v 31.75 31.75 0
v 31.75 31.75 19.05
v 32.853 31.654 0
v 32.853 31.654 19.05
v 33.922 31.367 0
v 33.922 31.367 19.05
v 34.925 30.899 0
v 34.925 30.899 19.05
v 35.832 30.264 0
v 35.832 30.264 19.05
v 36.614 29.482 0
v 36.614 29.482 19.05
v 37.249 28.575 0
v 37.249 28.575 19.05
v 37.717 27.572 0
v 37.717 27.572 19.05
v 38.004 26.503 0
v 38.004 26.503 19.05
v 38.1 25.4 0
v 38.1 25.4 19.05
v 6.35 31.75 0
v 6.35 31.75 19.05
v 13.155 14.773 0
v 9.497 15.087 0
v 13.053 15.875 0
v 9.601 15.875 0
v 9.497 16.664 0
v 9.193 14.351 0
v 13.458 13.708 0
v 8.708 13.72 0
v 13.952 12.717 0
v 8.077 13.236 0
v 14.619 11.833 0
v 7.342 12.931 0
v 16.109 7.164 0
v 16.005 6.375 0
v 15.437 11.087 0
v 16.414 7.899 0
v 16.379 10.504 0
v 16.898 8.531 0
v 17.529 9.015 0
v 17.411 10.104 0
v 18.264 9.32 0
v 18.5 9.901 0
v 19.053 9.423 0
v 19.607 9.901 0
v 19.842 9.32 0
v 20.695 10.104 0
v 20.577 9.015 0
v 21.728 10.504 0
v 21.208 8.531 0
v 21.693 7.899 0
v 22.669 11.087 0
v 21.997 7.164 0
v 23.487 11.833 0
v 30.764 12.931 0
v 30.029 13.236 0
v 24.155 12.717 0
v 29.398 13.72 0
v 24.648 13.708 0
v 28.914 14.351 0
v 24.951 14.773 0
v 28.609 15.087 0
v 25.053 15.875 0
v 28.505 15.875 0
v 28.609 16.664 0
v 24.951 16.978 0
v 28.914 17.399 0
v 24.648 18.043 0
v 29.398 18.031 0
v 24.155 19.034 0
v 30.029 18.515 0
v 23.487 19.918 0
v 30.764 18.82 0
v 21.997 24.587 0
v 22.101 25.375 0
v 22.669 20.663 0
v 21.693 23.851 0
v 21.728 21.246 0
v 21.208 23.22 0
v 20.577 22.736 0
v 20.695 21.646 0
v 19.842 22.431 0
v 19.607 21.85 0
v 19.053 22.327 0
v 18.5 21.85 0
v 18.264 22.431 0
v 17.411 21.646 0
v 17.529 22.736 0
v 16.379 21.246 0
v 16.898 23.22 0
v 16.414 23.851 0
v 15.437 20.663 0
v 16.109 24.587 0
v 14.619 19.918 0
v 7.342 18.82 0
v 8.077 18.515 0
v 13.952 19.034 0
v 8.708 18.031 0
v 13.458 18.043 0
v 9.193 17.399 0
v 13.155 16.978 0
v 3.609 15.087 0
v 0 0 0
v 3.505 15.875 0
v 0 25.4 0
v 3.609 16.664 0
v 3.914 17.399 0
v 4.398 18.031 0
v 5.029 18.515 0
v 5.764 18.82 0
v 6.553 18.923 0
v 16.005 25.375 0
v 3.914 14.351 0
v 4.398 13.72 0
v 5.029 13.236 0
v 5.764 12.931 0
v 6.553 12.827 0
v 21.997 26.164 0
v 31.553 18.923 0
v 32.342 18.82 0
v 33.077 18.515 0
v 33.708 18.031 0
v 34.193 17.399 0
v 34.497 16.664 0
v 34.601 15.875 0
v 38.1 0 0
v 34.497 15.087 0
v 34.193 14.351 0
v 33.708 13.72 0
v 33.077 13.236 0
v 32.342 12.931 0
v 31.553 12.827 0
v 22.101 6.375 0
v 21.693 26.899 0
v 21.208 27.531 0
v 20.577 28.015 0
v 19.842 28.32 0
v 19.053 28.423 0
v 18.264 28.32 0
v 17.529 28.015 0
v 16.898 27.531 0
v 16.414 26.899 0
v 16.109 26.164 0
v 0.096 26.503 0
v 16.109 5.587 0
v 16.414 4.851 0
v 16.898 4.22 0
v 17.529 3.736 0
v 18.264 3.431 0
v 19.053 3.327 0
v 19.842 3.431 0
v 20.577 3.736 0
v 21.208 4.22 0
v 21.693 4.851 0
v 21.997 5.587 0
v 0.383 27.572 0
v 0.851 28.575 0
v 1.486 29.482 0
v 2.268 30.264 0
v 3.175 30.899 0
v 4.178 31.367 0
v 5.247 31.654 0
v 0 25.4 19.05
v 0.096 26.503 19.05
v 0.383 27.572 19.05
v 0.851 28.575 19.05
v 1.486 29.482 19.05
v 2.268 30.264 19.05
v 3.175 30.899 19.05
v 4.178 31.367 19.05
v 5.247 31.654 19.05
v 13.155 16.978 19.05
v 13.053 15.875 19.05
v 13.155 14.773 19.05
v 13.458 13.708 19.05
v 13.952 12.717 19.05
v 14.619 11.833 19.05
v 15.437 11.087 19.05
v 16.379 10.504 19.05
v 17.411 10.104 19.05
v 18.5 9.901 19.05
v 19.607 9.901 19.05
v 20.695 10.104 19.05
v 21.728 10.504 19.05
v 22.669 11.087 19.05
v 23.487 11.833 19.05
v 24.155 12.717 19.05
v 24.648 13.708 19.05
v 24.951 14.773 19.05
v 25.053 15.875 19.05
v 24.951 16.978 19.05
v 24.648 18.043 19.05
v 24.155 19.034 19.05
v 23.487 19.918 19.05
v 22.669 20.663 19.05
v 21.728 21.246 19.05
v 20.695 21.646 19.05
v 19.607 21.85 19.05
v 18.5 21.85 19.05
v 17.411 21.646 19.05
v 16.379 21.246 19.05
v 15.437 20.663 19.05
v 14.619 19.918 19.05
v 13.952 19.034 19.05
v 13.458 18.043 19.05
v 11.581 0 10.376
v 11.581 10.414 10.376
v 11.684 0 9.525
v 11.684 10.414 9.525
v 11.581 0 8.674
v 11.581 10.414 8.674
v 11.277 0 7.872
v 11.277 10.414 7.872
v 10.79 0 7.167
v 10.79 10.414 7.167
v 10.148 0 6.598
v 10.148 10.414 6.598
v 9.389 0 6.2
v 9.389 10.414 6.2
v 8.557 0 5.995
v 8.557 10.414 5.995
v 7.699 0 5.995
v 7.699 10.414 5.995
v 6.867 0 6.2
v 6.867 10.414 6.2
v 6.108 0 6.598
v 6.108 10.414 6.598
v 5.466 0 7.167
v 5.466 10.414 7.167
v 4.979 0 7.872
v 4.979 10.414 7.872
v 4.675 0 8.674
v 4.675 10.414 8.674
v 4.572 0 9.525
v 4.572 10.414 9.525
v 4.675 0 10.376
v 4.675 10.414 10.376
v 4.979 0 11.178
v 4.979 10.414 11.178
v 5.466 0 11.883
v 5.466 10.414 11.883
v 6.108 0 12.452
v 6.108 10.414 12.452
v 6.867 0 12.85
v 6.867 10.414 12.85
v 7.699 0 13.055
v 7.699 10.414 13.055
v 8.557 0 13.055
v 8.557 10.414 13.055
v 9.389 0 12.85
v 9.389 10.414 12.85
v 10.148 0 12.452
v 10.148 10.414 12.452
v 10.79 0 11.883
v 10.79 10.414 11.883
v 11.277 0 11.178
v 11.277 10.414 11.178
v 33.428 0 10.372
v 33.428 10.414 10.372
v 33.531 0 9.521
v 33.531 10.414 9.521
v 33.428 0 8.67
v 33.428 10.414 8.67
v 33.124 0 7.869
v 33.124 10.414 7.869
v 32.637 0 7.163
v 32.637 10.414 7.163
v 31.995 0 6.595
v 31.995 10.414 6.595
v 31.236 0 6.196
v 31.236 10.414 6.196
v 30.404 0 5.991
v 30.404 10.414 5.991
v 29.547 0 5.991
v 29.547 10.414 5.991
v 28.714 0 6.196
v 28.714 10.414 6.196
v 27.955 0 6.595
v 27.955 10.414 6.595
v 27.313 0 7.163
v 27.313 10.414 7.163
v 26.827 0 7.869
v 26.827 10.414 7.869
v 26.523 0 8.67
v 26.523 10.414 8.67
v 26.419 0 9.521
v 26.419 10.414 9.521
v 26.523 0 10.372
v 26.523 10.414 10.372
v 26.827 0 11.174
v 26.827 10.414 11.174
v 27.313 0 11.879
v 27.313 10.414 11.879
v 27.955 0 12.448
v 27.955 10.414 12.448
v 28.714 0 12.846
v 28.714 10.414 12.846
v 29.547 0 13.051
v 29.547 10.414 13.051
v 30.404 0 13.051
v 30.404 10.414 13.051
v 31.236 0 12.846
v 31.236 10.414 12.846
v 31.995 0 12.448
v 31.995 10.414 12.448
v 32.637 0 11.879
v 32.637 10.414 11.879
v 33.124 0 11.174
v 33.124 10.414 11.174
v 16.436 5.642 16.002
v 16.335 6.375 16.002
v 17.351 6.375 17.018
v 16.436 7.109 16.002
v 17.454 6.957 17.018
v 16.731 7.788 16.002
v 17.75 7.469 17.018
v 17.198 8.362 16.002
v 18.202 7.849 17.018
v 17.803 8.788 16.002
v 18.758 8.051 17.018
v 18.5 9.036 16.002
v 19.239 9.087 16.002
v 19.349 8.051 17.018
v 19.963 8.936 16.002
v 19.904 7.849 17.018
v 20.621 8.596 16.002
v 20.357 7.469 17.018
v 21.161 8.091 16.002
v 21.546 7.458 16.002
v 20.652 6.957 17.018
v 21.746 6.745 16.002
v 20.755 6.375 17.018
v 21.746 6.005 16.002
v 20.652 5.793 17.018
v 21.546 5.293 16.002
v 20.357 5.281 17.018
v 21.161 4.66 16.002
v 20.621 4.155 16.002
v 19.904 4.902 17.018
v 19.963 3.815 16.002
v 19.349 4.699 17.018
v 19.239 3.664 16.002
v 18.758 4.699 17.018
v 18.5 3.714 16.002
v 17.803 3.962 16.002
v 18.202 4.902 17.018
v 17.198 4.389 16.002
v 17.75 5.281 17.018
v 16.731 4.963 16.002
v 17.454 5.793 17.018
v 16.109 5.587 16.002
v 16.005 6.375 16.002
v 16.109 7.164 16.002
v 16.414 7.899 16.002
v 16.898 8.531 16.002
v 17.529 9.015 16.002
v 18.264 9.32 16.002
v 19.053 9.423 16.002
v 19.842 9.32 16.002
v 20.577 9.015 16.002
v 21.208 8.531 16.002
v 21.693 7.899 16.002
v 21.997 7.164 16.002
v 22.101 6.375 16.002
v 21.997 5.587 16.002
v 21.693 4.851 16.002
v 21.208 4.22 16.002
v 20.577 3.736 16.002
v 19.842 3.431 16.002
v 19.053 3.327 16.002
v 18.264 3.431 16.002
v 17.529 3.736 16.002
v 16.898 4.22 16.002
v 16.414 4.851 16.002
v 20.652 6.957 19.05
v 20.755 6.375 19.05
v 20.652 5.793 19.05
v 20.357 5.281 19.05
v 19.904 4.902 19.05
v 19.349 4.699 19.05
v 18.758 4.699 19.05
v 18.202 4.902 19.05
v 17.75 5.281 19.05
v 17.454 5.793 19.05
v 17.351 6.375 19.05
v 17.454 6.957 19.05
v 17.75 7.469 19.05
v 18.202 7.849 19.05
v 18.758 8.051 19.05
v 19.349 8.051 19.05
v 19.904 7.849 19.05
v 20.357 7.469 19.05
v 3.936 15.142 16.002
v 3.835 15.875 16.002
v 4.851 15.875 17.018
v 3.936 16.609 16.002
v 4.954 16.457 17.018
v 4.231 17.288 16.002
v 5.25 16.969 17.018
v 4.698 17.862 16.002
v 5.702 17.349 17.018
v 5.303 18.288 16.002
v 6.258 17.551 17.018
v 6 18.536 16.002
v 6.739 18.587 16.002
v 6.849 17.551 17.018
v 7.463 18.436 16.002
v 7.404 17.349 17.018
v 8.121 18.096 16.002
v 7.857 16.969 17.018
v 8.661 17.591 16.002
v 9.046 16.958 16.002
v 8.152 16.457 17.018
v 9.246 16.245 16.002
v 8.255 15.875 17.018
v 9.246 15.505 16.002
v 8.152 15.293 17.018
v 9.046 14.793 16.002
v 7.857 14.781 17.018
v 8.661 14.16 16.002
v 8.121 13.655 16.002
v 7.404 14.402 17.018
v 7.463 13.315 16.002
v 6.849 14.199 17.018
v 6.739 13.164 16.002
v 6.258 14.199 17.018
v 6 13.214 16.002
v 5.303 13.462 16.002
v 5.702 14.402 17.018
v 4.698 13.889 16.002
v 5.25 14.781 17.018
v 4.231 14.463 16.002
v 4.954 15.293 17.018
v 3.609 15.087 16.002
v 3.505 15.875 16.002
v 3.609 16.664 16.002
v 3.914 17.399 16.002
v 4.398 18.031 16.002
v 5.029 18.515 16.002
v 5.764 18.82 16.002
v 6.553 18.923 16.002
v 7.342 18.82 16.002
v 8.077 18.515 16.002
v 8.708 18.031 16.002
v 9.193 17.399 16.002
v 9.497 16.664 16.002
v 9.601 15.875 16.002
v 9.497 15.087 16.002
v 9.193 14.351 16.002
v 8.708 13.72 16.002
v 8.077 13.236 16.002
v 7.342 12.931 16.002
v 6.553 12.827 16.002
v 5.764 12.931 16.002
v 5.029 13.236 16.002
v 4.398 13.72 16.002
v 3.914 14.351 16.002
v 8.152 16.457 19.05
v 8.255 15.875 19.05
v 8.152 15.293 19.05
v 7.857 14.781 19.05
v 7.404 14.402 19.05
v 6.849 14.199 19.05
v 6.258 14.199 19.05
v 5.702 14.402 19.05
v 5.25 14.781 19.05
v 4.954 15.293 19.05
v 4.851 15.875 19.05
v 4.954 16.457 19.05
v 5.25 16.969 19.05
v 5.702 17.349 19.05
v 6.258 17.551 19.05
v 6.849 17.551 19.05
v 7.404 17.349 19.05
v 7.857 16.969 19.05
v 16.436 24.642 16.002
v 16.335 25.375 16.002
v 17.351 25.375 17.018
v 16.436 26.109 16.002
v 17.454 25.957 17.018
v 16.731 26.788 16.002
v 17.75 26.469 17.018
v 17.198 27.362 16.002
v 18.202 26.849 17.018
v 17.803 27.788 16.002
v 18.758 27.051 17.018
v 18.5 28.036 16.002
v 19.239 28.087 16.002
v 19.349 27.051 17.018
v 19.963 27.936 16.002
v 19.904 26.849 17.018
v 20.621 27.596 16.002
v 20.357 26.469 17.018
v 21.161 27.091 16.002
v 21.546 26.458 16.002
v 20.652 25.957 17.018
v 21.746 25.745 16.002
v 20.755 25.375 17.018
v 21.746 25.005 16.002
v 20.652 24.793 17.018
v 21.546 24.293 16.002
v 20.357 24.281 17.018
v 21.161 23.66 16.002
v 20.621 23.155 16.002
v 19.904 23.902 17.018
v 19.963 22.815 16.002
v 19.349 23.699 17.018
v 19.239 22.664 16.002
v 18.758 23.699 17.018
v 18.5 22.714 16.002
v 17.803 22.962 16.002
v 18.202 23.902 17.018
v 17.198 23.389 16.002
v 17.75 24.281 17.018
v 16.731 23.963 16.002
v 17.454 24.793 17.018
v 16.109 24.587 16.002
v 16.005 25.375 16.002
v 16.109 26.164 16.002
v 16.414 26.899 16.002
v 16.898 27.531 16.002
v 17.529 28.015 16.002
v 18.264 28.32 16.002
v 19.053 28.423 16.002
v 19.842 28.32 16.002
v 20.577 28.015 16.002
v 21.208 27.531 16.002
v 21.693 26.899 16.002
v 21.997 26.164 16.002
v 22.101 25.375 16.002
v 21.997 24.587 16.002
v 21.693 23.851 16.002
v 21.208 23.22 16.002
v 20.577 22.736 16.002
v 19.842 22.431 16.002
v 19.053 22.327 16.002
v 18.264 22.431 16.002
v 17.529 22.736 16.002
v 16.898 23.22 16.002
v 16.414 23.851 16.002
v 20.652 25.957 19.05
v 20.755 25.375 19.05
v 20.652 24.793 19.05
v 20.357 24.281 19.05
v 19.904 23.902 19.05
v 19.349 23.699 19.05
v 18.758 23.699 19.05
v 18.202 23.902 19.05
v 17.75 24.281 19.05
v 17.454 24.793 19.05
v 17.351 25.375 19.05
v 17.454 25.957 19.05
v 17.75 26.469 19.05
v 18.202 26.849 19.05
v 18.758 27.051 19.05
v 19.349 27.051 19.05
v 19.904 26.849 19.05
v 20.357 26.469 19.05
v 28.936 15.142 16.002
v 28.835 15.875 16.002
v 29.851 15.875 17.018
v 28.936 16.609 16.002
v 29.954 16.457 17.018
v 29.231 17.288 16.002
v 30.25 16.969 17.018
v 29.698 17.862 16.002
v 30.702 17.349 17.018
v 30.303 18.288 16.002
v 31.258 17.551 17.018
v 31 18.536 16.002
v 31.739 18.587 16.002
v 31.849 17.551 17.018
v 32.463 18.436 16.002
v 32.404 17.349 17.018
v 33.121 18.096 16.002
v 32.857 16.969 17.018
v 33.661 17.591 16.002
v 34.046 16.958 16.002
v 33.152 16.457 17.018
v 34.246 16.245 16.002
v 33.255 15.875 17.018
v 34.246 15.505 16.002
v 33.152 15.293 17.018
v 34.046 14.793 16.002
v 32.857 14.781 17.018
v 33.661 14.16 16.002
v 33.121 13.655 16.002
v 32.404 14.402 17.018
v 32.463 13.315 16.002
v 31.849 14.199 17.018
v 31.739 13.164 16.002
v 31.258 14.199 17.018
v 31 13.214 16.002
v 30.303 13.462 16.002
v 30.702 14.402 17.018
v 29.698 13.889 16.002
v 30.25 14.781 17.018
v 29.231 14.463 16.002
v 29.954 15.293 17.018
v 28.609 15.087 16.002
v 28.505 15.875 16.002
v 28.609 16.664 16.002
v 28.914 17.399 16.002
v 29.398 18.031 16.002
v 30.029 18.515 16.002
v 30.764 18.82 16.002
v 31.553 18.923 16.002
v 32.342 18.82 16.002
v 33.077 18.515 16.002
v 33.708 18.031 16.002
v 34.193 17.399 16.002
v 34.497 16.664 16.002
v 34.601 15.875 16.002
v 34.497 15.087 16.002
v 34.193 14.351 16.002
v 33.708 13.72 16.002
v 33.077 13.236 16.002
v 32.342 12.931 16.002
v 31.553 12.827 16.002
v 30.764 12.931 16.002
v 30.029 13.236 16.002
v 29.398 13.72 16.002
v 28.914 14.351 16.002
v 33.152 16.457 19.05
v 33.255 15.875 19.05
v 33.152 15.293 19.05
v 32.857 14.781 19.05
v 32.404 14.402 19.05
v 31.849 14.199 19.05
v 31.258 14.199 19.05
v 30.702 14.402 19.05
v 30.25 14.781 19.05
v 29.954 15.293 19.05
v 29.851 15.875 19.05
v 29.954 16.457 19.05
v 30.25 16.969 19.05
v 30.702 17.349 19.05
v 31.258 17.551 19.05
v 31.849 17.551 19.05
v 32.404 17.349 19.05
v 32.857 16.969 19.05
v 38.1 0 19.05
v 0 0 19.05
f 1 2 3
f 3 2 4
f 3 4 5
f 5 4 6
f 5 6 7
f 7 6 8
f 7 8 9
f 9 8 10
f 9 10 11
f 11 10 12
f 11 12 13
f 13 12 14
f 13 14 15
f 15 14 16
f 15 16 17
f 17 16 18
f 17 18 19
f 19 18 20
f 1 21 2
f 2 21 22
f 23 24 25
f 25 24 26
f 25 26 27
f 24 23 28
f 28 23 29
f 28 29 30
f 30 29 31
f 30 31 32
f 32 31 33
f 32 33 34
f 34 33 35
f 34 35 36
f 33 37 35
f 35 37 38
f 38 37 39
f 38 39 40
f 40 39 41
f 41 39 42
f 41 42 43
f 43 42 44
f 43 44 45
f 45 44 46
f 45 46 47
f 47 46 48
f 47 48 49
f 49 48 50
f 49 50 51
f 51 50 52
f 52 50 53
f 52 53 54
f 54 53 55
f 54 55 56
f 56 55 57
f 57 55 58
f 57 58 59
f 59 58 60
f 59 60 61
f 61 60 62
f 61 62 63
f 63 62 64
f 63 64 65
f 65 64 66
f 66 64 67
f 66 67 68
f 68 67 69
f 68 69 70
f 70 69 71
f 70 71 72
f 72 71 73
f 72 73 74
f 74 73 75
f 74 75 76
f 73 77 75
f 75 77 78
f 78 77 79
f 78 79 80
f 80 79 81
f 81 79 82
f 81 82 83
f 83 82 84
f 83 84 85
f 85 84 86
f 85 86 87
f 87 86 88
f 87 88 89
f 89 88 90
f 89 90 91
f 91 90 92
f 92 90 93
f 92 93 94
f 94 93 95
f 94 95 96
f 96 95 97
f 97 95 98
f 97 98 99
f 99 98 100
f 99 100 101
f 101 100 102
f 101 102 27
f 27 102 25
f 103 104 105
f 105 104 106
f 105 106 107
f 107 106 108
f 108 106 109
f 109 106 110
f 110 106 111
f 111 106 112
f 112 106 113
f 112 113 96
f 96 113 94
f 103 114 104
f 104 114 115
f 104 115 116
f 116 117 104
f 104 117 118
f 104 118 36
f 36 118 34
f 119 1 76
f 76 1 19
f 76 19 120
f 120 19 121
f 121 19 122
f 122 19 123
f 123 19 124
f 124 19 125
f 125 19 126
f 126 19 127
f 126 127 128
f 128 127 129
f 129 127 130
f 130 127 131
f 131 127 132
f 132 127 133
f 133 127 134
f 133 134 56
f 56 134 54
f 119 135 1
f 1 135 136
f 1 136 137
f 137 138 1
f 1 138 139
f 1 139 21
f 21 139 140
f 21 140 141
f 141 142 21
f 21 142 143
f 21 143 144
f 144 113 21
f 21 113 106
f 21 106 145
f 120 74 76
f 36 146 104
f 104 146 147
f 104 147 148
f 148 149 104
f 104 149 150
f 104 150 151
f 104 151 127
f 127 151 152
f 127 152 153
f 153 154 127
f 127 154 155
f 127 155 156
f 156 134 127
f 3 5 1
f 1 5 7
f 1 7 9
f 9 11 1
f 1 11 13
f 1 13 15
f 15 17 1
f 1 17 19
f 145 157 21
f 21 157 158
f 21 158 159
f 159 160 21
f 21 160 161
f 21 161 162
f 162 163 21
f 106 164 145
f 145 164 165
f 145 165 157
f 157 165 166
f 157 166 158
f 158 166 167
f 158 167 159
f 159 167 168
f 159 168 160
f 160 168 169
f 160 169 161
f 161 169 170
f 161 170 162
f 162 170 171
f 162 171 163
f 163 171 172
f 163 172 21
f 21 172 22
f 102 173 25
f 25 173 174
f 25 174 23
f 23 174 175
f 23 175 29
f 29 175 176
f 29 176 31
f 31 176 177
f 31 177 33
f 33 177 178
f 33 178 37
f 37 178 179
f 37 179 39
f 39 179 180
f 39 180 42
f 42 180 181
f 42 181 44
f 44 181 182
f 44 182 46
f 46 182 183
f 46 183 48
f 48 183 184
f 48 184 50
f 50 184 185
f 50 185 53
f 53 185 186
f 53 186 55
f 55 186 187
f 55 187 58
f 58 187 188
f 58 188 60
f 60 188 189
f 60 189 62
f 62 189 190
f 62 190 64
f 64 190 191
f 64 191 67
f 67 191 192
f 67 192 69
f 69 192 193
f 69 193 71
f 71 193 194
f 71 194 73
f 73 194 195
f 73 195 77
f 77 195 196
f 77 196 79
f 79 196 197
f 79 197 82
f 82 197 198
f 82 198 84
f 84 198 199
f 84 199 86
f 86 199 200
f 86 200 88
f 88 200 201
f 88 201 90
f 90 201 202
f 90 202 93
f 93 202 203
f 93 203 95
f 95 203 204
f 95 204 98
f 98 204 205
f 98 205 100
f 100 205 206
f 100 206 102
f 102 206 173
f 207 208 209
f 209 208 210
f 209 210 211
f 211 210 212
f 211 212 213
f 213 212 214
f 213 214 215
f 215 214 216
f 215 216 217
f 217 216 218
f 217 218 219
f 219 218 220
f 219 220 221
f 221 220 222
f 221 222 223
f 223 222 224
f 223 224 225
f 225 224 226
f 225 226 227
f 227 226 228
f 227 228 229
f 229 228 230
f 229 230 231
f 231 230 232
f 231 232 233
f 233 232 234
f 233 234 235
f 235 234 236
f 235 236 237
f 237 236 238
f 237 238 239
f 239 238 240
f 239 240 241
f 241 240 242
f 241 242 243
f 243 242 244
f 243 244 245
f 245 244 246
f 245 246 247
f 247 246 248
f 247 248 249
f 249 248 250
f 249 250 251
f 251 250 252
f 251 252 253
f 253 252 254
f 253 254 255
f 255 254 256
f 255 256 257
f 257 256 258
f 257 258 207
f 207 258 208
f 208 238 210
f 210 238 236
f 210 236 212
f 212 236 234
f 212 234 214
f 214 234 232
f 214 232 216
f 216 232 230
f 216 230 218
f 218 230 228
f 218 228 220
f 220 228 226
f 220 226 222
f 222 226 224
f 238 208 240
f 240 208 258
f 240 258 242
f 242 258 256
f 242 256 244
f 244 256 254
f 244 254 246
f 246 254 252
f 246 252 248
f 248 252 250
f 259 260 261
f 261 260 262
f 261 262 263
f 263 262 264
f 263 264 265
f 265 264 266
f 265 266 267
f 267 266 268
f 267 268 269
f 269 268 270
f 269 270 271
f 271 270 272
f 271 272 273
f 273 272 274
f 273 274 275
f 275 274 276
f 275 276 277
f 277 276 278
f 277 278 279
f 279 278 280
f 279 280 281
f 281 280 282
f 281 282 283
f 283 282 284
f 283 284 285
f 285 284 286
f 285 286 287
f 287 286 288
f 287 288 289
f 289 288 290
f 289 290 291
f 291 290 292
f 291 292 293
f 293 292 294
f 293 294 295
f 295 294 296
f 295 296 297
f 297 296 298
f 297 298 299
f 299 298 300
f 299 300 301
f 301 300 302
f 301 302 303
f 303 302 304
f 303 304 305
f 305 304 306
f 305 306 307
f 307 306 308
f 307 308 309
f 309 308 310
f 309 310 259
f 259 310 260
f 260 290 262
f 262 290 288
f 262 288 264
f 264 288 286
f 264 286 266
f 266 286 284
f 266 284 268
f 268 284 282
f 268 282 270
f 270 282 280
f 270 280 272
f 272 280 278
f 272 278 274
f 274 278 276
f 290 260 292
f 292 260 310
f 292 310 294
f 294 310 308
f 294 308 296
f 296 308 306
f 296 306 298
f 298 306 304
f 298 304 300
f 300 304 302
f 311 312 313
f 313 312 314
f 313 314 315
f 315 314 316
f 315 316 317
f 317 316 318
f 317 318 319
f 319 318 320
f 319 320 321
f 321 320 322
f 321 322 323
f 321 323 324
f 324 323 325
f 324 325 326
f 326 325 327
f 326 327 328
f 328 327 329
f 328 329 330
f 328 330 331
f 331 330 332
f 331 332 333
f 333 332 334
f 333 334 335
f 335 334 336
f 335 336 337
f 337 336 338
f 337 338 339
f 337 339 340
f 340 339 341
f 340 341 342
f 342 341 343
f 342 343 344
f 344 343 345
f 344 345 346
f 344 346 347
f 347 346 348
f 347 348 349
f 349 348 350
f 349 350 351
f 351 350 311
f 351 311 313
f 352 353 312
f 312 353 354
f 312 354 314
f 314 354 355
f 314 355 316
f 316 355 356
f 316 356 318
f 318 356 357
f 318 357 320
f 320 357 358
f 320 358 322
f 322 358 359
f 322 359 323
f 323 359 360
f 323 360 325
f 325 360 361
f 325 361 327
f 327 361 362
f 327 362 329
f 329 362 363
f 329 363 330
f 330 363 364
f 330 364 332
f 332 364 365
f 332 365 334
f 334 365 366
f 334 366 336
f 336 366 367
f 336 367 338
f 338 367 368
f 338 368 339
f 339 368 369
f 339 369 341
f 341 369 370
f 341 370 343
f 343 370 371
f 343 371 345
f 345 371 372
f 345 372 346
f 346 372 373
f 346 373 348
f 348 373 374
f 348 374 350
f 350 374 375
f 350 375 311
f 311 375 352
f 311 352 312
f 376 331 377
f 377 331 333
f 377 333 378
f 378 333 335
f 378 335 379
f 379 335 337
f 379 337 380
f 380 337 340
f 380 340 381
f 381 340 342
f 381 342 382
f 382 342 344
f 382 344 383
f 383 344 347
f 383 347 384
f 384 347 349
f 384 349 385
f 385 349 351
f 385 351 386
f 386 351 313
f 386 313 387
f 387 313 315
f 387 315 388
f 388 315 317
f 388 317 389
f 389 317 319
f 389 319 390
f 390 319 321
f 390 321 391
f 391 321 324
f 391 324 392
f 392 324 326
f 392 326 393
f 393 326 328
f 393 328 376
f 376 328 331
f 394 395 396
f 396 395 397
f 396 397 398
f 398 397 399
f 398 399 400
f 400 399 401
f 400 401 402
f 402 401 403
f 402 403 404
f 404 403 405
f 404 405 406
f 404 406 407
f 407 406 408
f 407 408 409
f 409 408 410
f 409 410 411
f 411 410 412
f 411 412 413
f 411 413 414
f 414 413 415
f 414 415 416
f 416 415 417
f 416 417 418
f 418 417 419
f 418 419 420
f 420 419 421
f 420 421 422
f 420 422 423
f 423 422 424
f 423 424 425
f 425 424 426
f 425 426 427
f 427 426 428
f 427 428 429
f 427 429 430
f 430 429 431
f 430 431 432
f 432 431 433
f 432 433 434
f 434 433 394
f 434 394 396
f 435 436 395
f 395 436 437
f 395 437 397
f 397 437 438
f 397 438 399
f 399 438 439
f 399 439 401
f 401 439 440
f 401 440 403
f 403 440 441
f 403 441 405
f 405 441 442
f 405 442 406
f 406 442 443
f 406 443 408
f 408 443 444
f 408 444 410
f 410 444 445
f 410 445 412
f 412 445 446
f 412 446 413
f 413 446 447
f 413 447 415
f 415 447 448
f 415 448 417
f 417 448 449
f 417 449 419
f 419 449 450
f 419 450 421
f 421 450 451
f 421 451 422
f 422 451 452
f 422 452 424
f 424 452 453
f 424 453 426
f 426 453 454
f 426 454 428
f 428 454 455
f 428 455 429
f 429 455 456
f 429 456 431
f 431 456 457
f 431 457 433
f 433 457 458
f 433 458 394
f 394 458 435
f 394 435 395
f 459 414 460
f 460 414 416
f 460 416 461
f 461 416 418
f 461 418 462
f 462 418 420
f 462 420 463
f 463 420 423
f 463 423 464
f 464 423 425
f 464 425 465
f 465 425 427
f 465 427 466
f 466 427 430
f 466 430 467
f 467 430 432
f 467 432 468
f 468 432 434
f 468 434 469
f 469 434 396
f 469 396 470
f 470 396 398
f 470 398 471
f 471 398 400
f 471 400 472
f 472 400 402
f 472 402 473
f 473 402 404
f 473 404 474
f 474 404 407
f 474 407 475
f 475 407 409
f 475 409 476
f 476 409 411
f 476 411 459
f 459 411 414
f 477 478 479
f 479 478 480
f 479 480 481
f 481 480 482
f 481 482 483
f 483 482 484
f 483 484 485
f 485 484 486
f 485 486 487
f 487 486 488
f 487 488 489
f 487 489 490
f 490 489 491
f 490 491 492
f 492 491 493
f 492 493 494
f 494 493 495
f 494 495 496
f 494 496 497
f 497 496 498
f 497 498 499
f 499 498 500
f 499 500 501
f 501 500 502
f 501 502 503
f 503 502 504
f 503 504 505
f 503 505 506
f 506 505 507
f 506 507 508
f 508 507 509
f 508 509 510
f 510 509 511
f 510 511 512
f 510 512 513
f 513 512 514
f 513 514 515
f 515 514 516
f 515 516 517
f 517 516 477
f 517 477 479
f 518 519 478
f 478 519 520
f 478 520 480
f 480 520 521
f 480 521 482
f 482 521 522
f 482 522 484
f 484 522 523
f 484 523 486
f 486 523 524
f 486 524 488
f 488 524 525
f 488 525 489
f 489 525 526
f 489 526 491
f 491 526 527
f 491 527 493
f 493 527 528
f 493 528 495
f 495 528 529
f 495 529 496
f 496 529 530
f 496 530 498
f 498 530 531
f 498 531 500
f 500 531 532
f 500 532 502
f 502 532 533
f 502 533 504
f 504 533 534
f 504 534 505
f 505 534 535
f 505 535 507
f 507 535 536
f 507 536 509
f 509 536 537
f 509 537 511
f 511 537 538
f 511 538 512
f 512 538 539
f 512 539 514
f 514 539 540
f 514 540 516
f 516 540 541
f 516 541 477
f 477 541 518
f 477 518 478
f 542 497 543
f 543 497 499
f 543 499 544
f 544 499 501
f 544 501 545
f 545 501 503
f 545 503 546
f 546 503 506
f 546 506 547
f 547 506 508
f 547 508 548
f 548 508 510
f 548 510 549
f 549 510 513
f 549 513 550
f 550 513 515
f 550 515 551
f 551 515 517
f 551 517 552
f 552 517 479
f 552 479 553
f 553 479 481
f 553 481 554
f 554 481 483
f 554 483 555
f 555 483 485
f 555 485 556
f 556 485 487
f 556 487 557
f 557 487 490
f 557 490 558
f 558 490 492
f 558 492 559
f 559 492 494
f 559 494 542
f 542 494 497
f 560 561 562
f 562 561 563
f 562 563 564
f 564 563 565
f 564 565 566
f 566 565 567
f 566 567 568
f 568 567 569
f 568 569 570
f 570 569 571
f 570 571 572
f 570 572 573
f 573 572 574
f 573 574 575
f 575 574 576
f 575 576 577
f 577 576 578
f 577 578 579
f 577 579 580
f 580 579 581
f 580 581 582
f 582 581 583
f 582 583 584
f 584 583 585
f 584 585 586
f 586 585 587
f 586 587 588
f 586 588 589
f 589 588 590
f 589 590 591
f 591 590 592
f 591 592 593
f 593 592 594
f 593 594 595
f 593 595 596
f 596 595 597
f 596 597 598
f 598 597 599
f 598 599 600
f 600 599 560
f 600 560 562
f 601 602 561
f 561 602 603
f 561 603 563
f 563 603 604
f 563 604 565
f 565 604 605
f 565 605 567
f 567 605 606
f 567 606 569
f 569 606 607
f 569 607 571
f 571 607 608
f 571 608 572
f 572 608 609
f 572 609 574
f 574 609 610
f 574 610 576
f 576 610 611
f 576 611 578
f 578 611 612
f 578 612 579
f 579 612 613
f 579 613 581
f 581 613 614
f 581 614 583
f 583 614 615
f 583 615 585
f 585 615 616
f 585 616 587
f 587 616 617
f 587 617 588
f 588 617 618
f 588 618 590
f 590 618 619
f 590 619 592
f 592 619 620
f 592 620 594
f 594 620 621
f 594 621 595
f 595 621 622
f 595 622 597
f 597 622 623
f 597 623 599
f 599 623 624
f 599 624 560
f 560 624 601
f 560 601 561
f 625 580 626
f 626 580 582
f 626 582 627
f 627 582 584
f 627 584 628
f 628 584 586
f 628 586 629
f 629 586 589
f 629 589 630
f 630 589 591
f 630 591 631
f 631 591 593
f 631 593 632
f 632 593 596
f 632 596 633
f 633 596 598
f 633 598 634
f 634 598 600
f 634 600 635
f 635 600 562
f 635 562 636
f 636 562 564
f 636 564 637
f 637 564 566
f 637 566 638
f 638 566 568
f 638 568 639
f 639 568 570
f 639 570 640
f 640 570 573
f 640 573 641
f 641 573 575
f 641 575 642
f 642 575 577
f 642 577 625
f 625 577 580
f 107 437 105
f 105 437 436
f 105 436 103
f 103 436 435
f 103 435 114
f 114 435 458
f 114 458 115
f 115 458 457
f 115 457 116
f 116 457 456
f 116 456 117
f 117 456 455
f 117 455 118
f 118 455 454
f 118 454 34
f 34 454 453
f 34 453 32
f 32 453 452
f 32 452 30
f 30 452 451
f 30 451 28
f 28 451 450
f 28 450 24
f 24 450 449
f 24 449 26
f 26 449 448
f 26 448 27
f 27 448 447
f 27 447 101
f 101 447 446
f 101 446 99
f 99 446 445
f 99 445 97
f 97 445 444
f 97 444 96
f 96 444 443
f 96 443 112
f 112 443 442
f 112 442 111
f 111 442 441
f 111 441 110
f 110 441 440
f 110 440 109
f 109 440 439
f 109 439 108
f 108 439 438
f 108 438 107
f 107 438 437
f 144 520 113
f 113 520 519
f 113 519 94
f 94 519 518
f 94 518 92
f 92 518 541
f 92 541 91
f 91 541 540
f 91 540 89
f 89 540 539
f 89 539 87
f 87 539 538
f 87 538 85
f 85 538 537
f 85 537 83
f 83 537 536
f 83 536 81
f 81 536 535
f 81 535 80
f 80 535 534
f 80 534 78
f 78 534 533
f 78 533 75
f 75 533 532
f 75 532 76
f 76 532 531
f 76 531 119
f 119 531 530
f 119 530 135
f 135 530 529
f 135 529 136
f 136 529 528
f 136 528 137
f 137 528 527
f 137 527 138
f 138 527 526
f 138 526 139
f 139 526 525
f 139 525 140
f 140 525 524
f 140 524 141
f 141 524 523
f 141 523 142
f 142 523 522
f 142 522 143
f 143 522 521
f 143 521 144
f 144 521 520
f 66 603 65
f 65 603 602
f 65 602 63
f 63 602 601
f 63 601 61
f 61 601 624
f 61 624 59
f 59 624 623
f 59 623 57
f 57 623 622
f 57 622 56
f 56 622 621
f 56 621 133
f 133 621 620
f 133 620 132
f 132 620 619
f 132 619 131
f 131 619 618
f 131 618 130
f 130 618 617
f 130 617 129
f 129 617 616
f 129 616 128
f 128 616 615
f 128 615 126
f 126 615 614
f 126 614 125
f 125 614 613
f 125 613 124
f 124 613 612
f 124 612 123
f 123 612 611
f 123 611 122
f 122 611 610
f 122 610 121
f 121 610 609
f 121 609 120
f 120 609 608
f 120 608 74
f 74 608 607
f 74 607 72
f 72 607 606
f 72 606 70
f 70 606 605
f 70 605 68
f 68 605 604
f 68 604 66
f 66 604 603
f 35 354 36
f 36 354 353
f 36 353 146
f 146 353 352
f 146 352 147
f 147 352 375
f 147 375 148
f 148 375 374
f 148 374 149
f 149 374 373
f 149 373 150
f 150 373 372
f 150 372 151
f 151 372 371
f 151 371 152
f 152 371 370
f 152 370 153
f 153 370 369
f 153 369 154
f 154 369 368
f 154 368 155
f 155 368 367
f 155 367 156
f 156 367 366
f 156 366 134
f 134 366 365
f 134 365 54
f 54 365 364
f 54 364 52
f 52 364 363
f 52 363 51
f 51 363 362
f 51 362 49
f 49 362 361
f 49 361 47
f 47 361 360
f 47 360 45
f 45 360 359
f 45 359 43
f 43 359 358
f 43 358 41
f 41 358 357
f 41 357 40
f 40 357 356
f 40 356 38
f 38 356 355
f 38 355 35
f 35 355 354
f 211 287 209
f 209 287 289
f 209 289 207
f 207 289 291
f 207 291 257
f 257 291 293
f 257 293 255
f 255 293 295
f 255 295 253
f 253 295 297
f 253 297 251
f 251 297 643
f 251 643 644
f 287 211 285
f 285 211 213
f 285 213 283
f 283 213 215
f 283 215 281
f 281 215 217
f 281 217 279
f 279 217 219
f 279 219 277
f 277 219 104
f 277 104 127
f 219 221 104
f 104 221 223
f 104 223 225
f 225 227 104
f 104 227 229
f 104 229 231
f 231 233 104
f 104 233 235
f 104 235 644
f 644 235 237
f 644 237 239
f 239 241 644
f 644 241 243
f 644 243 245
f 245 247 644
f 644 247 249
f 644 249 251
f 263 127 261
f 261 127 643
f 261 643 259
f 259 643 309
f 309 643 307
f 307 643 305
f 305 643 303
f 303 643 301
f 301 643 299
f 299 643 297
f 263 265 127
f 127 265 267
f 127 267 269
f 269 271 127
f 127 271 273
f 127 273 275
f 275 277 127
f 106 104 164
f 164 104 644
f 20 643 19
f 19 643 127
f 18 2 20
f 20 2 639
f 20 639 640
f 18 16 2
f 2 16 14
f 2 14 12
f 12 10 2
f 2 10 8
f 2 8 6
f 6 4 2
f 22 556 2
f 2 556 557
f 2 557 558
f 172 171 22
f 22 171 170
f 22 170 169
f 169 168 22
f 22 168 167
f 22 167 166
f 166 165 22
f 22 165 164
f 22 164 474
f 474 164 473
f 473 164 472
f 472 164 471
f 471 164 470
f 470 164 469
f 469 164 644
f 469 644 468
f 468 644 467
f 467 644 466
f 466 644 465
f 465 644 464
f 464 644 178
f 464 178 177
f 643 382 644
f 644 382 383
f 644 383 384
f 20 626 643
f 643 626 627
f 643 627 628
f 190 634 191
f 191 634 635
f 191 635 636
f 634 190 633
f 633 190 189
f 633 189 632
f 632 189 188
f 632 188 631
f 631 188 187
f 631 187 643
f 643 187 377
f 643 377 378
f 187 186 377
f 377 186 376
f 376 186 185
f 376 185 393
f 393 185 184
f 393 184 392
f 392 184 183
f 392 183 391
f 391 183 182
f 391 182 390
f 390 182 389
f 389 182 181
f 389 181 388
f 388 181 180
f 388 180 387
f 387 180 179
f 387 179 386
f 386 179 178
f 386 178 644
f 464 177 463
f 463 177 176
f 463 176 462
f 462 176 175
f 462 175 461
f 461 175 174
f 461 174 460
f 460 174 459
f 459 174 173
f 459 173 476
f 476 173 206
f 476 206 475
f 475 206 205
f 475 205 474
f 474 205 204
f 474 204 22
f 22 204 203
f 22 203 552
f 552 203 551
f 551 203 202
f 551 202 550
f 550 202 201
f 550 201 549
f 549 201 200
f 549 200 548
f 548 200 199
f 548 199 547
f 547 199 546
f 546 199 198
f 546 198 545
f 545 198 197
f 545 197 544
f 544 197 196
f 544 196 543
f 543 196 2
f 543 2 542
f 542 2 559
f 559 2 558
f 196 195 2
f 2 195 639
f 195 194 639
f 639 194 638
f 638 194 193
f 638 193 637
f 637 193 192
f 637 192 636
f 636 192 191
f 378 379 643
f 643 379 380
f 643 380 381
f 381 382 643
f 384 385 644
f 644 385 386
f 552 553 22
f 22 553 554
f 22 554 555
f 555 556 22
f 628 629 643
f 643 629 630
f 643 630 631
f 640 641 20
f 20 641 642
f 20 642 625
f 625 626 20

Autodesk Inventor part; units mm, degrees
ref_plane "YZ Plane" through (0, 0, 0) normal (1, 0, 0) x (0, 1, 0)
ref_plane "XZ Plane" through (0, 0, 0) normal (0, 1, 0) x (-1, 0, 0)
ref_plane "XY Plane" through (0, 0, 0) normal (0, 0, 1) x (1, 0, 0)
sketch "Sketch1" plane through (0, 0, 0) normal (0, 0, 1) x (1, 0, 0)
  line L0 (0, 0) -> (38.1, 0)
  line L1 (38.1, 0) -> (38.1, 31.75)
  line L2 (38.1, 31.75) -> (0, 31.75)
  line L3 (0, 31.75) -> (0, 0)
  dimension "d0" = 38.1
  dimension "d1" = 31.75
extrude "Extrusion1" add sketch "Sketch1" along normal blind 19.05
sketch "Sketch2" plane through (0, 0, 19.05) normal (0, 0, 1) x (1, 0, 0)
  line L0 (31.5532, 15.8754) -> (6.5532, 15.8754)
  line L1 (19.0532, 6.3754) -> (19.0532, 25.3754)
  line L2 (0, 31.75) -> (0, 0)
  line L3 (38.1, 0) -> (0, 0)
  line L4 (0, 0) -> (38.1, 0) projected
  line L5 (0, 31.75) -> (0, 0) projected
  point P0 (19.0532, 15.8754)
  point P1 (0, -6.35)
  point P2 (9.525, -9.525)
  dimension "d4" = 25
  dimension "d5" = 19
  dimension "d6" = 6.5532
  dimension "d7" = 6.3754
hole "Hole1" at (19.0532, 15.8754, 19.05) at (19.0532, 25.3754, 19.05) at (6.5532, 15.8754, 19.05) at (19.0532, 6.3754, 19.05) at (31.5532, 15.8754, 19.05) direction (0, 0, -1) diameter 3.4036 depth 32.0675
sketch "Sketch3" plane through (0, 0, 0) normal (0, 0, -1) x (-1, 0, 0)
  circle A0 centre (-19.0532, 6.3754) radius 1.7018 projected
  circle A1 centre (-19.0532, 25.3754) radius 1.7018 projected
  circle A2 centre (-19.0532, 15.8754) radius 1.7018 projected
  circle A3 centre (-6.5532, 15.8754) radius 1.7018 projected
  circle A4 centre (-31.5532, 15.8754) radius 1.7018 projected
  line L0 (-38.1, 0) -> (-38.1, 31.75) projected
  line L1 (0, 0) -> (-38.1, 0) projected
  line L2 (0, 31.75) -> (0, 0) projected
  line L3 (-38.1, 31.75) -> (0, 31.75) projected
  circle A5 centre (-19.0532, 25.3754) radius 1.7018 projected
  circle A6 centre (-19.0532, 6.3754) radius 1.7018 projected
  circle A7 centre (-19.0532, 15.8754) radius 1.7018 projected
  circle A8 centre (-19.0532, 15.8754) radius 5.5
  dimension "d34" = 11
hole "Hole2" at (19.0532, 15.8754, 0) at (19.0532, 25.3754, 0) at (31.5532, 15.8754, 0) at (6.5532, 15.8754, 0) at (19.0532, 6.3754, 0) direction (0, 0, 1) diameter 6.096 depth 16.002
chamfer "Chamfer1" distance 1.016 angle 45 5 edges at (19.0532, 8.0772, 16.002) (6.5532, 17.5772, 16.002) (19.0532, 17.5772, 16.002) (19.0532, 27.0772, 16.002) (31.5532, 17.5772, 16.002)
sketch "Sketch4" plane through (0, 0, 0) normal (0, -1, 0) x (1, 0, 0)
  line L0 (0, 0) -> (38.1, 0) projected
  line L1 (38.1, 0) -> (38.1, 19.05) projected
  line L2 (0, 19.05) -> (38.1, 19.05) projected
  line L3 (0, 0) -> (0, 19.05) projected
  line L4 (17.3514, 19.05) -> (20.755, 19.05) projected
  line L5 (19.0532, 19.05) -> (19.05, 0)
  point P0 (8.128, 9.525)
  point P1 (29.9752, 9.5213)
  point P2 (0, 9.525)
  dimension "d25" = 9.525
  dimension "d26" = 8.128
hole "Hole3" at (8.128, 0, 9.525) at (29.9752, 0, 9.5213) direction (0, 1, 0) diameter 7.112 depth 10.414
sketch "Sketch5" plane through (0, 0, 19.05) normal (0, 0, 1) x (1, 0, 0)
  circle A0 centre (19.0532, 15.8754) radius 1.7018 projected
  circle A1 centre (19.0532, 15.8754) radius 6
  point P0 (0, 0)
  dimension "d35" = 12
extrude "Extrusion2" cut sketch "Sketch5" against normal blind 25.4
fillet "Fillet2" radius 6.35 2 edges at (0, 31.75, 9.525) (38.1, 31.75, 9.525)
properties part number "Motor Mounts"
